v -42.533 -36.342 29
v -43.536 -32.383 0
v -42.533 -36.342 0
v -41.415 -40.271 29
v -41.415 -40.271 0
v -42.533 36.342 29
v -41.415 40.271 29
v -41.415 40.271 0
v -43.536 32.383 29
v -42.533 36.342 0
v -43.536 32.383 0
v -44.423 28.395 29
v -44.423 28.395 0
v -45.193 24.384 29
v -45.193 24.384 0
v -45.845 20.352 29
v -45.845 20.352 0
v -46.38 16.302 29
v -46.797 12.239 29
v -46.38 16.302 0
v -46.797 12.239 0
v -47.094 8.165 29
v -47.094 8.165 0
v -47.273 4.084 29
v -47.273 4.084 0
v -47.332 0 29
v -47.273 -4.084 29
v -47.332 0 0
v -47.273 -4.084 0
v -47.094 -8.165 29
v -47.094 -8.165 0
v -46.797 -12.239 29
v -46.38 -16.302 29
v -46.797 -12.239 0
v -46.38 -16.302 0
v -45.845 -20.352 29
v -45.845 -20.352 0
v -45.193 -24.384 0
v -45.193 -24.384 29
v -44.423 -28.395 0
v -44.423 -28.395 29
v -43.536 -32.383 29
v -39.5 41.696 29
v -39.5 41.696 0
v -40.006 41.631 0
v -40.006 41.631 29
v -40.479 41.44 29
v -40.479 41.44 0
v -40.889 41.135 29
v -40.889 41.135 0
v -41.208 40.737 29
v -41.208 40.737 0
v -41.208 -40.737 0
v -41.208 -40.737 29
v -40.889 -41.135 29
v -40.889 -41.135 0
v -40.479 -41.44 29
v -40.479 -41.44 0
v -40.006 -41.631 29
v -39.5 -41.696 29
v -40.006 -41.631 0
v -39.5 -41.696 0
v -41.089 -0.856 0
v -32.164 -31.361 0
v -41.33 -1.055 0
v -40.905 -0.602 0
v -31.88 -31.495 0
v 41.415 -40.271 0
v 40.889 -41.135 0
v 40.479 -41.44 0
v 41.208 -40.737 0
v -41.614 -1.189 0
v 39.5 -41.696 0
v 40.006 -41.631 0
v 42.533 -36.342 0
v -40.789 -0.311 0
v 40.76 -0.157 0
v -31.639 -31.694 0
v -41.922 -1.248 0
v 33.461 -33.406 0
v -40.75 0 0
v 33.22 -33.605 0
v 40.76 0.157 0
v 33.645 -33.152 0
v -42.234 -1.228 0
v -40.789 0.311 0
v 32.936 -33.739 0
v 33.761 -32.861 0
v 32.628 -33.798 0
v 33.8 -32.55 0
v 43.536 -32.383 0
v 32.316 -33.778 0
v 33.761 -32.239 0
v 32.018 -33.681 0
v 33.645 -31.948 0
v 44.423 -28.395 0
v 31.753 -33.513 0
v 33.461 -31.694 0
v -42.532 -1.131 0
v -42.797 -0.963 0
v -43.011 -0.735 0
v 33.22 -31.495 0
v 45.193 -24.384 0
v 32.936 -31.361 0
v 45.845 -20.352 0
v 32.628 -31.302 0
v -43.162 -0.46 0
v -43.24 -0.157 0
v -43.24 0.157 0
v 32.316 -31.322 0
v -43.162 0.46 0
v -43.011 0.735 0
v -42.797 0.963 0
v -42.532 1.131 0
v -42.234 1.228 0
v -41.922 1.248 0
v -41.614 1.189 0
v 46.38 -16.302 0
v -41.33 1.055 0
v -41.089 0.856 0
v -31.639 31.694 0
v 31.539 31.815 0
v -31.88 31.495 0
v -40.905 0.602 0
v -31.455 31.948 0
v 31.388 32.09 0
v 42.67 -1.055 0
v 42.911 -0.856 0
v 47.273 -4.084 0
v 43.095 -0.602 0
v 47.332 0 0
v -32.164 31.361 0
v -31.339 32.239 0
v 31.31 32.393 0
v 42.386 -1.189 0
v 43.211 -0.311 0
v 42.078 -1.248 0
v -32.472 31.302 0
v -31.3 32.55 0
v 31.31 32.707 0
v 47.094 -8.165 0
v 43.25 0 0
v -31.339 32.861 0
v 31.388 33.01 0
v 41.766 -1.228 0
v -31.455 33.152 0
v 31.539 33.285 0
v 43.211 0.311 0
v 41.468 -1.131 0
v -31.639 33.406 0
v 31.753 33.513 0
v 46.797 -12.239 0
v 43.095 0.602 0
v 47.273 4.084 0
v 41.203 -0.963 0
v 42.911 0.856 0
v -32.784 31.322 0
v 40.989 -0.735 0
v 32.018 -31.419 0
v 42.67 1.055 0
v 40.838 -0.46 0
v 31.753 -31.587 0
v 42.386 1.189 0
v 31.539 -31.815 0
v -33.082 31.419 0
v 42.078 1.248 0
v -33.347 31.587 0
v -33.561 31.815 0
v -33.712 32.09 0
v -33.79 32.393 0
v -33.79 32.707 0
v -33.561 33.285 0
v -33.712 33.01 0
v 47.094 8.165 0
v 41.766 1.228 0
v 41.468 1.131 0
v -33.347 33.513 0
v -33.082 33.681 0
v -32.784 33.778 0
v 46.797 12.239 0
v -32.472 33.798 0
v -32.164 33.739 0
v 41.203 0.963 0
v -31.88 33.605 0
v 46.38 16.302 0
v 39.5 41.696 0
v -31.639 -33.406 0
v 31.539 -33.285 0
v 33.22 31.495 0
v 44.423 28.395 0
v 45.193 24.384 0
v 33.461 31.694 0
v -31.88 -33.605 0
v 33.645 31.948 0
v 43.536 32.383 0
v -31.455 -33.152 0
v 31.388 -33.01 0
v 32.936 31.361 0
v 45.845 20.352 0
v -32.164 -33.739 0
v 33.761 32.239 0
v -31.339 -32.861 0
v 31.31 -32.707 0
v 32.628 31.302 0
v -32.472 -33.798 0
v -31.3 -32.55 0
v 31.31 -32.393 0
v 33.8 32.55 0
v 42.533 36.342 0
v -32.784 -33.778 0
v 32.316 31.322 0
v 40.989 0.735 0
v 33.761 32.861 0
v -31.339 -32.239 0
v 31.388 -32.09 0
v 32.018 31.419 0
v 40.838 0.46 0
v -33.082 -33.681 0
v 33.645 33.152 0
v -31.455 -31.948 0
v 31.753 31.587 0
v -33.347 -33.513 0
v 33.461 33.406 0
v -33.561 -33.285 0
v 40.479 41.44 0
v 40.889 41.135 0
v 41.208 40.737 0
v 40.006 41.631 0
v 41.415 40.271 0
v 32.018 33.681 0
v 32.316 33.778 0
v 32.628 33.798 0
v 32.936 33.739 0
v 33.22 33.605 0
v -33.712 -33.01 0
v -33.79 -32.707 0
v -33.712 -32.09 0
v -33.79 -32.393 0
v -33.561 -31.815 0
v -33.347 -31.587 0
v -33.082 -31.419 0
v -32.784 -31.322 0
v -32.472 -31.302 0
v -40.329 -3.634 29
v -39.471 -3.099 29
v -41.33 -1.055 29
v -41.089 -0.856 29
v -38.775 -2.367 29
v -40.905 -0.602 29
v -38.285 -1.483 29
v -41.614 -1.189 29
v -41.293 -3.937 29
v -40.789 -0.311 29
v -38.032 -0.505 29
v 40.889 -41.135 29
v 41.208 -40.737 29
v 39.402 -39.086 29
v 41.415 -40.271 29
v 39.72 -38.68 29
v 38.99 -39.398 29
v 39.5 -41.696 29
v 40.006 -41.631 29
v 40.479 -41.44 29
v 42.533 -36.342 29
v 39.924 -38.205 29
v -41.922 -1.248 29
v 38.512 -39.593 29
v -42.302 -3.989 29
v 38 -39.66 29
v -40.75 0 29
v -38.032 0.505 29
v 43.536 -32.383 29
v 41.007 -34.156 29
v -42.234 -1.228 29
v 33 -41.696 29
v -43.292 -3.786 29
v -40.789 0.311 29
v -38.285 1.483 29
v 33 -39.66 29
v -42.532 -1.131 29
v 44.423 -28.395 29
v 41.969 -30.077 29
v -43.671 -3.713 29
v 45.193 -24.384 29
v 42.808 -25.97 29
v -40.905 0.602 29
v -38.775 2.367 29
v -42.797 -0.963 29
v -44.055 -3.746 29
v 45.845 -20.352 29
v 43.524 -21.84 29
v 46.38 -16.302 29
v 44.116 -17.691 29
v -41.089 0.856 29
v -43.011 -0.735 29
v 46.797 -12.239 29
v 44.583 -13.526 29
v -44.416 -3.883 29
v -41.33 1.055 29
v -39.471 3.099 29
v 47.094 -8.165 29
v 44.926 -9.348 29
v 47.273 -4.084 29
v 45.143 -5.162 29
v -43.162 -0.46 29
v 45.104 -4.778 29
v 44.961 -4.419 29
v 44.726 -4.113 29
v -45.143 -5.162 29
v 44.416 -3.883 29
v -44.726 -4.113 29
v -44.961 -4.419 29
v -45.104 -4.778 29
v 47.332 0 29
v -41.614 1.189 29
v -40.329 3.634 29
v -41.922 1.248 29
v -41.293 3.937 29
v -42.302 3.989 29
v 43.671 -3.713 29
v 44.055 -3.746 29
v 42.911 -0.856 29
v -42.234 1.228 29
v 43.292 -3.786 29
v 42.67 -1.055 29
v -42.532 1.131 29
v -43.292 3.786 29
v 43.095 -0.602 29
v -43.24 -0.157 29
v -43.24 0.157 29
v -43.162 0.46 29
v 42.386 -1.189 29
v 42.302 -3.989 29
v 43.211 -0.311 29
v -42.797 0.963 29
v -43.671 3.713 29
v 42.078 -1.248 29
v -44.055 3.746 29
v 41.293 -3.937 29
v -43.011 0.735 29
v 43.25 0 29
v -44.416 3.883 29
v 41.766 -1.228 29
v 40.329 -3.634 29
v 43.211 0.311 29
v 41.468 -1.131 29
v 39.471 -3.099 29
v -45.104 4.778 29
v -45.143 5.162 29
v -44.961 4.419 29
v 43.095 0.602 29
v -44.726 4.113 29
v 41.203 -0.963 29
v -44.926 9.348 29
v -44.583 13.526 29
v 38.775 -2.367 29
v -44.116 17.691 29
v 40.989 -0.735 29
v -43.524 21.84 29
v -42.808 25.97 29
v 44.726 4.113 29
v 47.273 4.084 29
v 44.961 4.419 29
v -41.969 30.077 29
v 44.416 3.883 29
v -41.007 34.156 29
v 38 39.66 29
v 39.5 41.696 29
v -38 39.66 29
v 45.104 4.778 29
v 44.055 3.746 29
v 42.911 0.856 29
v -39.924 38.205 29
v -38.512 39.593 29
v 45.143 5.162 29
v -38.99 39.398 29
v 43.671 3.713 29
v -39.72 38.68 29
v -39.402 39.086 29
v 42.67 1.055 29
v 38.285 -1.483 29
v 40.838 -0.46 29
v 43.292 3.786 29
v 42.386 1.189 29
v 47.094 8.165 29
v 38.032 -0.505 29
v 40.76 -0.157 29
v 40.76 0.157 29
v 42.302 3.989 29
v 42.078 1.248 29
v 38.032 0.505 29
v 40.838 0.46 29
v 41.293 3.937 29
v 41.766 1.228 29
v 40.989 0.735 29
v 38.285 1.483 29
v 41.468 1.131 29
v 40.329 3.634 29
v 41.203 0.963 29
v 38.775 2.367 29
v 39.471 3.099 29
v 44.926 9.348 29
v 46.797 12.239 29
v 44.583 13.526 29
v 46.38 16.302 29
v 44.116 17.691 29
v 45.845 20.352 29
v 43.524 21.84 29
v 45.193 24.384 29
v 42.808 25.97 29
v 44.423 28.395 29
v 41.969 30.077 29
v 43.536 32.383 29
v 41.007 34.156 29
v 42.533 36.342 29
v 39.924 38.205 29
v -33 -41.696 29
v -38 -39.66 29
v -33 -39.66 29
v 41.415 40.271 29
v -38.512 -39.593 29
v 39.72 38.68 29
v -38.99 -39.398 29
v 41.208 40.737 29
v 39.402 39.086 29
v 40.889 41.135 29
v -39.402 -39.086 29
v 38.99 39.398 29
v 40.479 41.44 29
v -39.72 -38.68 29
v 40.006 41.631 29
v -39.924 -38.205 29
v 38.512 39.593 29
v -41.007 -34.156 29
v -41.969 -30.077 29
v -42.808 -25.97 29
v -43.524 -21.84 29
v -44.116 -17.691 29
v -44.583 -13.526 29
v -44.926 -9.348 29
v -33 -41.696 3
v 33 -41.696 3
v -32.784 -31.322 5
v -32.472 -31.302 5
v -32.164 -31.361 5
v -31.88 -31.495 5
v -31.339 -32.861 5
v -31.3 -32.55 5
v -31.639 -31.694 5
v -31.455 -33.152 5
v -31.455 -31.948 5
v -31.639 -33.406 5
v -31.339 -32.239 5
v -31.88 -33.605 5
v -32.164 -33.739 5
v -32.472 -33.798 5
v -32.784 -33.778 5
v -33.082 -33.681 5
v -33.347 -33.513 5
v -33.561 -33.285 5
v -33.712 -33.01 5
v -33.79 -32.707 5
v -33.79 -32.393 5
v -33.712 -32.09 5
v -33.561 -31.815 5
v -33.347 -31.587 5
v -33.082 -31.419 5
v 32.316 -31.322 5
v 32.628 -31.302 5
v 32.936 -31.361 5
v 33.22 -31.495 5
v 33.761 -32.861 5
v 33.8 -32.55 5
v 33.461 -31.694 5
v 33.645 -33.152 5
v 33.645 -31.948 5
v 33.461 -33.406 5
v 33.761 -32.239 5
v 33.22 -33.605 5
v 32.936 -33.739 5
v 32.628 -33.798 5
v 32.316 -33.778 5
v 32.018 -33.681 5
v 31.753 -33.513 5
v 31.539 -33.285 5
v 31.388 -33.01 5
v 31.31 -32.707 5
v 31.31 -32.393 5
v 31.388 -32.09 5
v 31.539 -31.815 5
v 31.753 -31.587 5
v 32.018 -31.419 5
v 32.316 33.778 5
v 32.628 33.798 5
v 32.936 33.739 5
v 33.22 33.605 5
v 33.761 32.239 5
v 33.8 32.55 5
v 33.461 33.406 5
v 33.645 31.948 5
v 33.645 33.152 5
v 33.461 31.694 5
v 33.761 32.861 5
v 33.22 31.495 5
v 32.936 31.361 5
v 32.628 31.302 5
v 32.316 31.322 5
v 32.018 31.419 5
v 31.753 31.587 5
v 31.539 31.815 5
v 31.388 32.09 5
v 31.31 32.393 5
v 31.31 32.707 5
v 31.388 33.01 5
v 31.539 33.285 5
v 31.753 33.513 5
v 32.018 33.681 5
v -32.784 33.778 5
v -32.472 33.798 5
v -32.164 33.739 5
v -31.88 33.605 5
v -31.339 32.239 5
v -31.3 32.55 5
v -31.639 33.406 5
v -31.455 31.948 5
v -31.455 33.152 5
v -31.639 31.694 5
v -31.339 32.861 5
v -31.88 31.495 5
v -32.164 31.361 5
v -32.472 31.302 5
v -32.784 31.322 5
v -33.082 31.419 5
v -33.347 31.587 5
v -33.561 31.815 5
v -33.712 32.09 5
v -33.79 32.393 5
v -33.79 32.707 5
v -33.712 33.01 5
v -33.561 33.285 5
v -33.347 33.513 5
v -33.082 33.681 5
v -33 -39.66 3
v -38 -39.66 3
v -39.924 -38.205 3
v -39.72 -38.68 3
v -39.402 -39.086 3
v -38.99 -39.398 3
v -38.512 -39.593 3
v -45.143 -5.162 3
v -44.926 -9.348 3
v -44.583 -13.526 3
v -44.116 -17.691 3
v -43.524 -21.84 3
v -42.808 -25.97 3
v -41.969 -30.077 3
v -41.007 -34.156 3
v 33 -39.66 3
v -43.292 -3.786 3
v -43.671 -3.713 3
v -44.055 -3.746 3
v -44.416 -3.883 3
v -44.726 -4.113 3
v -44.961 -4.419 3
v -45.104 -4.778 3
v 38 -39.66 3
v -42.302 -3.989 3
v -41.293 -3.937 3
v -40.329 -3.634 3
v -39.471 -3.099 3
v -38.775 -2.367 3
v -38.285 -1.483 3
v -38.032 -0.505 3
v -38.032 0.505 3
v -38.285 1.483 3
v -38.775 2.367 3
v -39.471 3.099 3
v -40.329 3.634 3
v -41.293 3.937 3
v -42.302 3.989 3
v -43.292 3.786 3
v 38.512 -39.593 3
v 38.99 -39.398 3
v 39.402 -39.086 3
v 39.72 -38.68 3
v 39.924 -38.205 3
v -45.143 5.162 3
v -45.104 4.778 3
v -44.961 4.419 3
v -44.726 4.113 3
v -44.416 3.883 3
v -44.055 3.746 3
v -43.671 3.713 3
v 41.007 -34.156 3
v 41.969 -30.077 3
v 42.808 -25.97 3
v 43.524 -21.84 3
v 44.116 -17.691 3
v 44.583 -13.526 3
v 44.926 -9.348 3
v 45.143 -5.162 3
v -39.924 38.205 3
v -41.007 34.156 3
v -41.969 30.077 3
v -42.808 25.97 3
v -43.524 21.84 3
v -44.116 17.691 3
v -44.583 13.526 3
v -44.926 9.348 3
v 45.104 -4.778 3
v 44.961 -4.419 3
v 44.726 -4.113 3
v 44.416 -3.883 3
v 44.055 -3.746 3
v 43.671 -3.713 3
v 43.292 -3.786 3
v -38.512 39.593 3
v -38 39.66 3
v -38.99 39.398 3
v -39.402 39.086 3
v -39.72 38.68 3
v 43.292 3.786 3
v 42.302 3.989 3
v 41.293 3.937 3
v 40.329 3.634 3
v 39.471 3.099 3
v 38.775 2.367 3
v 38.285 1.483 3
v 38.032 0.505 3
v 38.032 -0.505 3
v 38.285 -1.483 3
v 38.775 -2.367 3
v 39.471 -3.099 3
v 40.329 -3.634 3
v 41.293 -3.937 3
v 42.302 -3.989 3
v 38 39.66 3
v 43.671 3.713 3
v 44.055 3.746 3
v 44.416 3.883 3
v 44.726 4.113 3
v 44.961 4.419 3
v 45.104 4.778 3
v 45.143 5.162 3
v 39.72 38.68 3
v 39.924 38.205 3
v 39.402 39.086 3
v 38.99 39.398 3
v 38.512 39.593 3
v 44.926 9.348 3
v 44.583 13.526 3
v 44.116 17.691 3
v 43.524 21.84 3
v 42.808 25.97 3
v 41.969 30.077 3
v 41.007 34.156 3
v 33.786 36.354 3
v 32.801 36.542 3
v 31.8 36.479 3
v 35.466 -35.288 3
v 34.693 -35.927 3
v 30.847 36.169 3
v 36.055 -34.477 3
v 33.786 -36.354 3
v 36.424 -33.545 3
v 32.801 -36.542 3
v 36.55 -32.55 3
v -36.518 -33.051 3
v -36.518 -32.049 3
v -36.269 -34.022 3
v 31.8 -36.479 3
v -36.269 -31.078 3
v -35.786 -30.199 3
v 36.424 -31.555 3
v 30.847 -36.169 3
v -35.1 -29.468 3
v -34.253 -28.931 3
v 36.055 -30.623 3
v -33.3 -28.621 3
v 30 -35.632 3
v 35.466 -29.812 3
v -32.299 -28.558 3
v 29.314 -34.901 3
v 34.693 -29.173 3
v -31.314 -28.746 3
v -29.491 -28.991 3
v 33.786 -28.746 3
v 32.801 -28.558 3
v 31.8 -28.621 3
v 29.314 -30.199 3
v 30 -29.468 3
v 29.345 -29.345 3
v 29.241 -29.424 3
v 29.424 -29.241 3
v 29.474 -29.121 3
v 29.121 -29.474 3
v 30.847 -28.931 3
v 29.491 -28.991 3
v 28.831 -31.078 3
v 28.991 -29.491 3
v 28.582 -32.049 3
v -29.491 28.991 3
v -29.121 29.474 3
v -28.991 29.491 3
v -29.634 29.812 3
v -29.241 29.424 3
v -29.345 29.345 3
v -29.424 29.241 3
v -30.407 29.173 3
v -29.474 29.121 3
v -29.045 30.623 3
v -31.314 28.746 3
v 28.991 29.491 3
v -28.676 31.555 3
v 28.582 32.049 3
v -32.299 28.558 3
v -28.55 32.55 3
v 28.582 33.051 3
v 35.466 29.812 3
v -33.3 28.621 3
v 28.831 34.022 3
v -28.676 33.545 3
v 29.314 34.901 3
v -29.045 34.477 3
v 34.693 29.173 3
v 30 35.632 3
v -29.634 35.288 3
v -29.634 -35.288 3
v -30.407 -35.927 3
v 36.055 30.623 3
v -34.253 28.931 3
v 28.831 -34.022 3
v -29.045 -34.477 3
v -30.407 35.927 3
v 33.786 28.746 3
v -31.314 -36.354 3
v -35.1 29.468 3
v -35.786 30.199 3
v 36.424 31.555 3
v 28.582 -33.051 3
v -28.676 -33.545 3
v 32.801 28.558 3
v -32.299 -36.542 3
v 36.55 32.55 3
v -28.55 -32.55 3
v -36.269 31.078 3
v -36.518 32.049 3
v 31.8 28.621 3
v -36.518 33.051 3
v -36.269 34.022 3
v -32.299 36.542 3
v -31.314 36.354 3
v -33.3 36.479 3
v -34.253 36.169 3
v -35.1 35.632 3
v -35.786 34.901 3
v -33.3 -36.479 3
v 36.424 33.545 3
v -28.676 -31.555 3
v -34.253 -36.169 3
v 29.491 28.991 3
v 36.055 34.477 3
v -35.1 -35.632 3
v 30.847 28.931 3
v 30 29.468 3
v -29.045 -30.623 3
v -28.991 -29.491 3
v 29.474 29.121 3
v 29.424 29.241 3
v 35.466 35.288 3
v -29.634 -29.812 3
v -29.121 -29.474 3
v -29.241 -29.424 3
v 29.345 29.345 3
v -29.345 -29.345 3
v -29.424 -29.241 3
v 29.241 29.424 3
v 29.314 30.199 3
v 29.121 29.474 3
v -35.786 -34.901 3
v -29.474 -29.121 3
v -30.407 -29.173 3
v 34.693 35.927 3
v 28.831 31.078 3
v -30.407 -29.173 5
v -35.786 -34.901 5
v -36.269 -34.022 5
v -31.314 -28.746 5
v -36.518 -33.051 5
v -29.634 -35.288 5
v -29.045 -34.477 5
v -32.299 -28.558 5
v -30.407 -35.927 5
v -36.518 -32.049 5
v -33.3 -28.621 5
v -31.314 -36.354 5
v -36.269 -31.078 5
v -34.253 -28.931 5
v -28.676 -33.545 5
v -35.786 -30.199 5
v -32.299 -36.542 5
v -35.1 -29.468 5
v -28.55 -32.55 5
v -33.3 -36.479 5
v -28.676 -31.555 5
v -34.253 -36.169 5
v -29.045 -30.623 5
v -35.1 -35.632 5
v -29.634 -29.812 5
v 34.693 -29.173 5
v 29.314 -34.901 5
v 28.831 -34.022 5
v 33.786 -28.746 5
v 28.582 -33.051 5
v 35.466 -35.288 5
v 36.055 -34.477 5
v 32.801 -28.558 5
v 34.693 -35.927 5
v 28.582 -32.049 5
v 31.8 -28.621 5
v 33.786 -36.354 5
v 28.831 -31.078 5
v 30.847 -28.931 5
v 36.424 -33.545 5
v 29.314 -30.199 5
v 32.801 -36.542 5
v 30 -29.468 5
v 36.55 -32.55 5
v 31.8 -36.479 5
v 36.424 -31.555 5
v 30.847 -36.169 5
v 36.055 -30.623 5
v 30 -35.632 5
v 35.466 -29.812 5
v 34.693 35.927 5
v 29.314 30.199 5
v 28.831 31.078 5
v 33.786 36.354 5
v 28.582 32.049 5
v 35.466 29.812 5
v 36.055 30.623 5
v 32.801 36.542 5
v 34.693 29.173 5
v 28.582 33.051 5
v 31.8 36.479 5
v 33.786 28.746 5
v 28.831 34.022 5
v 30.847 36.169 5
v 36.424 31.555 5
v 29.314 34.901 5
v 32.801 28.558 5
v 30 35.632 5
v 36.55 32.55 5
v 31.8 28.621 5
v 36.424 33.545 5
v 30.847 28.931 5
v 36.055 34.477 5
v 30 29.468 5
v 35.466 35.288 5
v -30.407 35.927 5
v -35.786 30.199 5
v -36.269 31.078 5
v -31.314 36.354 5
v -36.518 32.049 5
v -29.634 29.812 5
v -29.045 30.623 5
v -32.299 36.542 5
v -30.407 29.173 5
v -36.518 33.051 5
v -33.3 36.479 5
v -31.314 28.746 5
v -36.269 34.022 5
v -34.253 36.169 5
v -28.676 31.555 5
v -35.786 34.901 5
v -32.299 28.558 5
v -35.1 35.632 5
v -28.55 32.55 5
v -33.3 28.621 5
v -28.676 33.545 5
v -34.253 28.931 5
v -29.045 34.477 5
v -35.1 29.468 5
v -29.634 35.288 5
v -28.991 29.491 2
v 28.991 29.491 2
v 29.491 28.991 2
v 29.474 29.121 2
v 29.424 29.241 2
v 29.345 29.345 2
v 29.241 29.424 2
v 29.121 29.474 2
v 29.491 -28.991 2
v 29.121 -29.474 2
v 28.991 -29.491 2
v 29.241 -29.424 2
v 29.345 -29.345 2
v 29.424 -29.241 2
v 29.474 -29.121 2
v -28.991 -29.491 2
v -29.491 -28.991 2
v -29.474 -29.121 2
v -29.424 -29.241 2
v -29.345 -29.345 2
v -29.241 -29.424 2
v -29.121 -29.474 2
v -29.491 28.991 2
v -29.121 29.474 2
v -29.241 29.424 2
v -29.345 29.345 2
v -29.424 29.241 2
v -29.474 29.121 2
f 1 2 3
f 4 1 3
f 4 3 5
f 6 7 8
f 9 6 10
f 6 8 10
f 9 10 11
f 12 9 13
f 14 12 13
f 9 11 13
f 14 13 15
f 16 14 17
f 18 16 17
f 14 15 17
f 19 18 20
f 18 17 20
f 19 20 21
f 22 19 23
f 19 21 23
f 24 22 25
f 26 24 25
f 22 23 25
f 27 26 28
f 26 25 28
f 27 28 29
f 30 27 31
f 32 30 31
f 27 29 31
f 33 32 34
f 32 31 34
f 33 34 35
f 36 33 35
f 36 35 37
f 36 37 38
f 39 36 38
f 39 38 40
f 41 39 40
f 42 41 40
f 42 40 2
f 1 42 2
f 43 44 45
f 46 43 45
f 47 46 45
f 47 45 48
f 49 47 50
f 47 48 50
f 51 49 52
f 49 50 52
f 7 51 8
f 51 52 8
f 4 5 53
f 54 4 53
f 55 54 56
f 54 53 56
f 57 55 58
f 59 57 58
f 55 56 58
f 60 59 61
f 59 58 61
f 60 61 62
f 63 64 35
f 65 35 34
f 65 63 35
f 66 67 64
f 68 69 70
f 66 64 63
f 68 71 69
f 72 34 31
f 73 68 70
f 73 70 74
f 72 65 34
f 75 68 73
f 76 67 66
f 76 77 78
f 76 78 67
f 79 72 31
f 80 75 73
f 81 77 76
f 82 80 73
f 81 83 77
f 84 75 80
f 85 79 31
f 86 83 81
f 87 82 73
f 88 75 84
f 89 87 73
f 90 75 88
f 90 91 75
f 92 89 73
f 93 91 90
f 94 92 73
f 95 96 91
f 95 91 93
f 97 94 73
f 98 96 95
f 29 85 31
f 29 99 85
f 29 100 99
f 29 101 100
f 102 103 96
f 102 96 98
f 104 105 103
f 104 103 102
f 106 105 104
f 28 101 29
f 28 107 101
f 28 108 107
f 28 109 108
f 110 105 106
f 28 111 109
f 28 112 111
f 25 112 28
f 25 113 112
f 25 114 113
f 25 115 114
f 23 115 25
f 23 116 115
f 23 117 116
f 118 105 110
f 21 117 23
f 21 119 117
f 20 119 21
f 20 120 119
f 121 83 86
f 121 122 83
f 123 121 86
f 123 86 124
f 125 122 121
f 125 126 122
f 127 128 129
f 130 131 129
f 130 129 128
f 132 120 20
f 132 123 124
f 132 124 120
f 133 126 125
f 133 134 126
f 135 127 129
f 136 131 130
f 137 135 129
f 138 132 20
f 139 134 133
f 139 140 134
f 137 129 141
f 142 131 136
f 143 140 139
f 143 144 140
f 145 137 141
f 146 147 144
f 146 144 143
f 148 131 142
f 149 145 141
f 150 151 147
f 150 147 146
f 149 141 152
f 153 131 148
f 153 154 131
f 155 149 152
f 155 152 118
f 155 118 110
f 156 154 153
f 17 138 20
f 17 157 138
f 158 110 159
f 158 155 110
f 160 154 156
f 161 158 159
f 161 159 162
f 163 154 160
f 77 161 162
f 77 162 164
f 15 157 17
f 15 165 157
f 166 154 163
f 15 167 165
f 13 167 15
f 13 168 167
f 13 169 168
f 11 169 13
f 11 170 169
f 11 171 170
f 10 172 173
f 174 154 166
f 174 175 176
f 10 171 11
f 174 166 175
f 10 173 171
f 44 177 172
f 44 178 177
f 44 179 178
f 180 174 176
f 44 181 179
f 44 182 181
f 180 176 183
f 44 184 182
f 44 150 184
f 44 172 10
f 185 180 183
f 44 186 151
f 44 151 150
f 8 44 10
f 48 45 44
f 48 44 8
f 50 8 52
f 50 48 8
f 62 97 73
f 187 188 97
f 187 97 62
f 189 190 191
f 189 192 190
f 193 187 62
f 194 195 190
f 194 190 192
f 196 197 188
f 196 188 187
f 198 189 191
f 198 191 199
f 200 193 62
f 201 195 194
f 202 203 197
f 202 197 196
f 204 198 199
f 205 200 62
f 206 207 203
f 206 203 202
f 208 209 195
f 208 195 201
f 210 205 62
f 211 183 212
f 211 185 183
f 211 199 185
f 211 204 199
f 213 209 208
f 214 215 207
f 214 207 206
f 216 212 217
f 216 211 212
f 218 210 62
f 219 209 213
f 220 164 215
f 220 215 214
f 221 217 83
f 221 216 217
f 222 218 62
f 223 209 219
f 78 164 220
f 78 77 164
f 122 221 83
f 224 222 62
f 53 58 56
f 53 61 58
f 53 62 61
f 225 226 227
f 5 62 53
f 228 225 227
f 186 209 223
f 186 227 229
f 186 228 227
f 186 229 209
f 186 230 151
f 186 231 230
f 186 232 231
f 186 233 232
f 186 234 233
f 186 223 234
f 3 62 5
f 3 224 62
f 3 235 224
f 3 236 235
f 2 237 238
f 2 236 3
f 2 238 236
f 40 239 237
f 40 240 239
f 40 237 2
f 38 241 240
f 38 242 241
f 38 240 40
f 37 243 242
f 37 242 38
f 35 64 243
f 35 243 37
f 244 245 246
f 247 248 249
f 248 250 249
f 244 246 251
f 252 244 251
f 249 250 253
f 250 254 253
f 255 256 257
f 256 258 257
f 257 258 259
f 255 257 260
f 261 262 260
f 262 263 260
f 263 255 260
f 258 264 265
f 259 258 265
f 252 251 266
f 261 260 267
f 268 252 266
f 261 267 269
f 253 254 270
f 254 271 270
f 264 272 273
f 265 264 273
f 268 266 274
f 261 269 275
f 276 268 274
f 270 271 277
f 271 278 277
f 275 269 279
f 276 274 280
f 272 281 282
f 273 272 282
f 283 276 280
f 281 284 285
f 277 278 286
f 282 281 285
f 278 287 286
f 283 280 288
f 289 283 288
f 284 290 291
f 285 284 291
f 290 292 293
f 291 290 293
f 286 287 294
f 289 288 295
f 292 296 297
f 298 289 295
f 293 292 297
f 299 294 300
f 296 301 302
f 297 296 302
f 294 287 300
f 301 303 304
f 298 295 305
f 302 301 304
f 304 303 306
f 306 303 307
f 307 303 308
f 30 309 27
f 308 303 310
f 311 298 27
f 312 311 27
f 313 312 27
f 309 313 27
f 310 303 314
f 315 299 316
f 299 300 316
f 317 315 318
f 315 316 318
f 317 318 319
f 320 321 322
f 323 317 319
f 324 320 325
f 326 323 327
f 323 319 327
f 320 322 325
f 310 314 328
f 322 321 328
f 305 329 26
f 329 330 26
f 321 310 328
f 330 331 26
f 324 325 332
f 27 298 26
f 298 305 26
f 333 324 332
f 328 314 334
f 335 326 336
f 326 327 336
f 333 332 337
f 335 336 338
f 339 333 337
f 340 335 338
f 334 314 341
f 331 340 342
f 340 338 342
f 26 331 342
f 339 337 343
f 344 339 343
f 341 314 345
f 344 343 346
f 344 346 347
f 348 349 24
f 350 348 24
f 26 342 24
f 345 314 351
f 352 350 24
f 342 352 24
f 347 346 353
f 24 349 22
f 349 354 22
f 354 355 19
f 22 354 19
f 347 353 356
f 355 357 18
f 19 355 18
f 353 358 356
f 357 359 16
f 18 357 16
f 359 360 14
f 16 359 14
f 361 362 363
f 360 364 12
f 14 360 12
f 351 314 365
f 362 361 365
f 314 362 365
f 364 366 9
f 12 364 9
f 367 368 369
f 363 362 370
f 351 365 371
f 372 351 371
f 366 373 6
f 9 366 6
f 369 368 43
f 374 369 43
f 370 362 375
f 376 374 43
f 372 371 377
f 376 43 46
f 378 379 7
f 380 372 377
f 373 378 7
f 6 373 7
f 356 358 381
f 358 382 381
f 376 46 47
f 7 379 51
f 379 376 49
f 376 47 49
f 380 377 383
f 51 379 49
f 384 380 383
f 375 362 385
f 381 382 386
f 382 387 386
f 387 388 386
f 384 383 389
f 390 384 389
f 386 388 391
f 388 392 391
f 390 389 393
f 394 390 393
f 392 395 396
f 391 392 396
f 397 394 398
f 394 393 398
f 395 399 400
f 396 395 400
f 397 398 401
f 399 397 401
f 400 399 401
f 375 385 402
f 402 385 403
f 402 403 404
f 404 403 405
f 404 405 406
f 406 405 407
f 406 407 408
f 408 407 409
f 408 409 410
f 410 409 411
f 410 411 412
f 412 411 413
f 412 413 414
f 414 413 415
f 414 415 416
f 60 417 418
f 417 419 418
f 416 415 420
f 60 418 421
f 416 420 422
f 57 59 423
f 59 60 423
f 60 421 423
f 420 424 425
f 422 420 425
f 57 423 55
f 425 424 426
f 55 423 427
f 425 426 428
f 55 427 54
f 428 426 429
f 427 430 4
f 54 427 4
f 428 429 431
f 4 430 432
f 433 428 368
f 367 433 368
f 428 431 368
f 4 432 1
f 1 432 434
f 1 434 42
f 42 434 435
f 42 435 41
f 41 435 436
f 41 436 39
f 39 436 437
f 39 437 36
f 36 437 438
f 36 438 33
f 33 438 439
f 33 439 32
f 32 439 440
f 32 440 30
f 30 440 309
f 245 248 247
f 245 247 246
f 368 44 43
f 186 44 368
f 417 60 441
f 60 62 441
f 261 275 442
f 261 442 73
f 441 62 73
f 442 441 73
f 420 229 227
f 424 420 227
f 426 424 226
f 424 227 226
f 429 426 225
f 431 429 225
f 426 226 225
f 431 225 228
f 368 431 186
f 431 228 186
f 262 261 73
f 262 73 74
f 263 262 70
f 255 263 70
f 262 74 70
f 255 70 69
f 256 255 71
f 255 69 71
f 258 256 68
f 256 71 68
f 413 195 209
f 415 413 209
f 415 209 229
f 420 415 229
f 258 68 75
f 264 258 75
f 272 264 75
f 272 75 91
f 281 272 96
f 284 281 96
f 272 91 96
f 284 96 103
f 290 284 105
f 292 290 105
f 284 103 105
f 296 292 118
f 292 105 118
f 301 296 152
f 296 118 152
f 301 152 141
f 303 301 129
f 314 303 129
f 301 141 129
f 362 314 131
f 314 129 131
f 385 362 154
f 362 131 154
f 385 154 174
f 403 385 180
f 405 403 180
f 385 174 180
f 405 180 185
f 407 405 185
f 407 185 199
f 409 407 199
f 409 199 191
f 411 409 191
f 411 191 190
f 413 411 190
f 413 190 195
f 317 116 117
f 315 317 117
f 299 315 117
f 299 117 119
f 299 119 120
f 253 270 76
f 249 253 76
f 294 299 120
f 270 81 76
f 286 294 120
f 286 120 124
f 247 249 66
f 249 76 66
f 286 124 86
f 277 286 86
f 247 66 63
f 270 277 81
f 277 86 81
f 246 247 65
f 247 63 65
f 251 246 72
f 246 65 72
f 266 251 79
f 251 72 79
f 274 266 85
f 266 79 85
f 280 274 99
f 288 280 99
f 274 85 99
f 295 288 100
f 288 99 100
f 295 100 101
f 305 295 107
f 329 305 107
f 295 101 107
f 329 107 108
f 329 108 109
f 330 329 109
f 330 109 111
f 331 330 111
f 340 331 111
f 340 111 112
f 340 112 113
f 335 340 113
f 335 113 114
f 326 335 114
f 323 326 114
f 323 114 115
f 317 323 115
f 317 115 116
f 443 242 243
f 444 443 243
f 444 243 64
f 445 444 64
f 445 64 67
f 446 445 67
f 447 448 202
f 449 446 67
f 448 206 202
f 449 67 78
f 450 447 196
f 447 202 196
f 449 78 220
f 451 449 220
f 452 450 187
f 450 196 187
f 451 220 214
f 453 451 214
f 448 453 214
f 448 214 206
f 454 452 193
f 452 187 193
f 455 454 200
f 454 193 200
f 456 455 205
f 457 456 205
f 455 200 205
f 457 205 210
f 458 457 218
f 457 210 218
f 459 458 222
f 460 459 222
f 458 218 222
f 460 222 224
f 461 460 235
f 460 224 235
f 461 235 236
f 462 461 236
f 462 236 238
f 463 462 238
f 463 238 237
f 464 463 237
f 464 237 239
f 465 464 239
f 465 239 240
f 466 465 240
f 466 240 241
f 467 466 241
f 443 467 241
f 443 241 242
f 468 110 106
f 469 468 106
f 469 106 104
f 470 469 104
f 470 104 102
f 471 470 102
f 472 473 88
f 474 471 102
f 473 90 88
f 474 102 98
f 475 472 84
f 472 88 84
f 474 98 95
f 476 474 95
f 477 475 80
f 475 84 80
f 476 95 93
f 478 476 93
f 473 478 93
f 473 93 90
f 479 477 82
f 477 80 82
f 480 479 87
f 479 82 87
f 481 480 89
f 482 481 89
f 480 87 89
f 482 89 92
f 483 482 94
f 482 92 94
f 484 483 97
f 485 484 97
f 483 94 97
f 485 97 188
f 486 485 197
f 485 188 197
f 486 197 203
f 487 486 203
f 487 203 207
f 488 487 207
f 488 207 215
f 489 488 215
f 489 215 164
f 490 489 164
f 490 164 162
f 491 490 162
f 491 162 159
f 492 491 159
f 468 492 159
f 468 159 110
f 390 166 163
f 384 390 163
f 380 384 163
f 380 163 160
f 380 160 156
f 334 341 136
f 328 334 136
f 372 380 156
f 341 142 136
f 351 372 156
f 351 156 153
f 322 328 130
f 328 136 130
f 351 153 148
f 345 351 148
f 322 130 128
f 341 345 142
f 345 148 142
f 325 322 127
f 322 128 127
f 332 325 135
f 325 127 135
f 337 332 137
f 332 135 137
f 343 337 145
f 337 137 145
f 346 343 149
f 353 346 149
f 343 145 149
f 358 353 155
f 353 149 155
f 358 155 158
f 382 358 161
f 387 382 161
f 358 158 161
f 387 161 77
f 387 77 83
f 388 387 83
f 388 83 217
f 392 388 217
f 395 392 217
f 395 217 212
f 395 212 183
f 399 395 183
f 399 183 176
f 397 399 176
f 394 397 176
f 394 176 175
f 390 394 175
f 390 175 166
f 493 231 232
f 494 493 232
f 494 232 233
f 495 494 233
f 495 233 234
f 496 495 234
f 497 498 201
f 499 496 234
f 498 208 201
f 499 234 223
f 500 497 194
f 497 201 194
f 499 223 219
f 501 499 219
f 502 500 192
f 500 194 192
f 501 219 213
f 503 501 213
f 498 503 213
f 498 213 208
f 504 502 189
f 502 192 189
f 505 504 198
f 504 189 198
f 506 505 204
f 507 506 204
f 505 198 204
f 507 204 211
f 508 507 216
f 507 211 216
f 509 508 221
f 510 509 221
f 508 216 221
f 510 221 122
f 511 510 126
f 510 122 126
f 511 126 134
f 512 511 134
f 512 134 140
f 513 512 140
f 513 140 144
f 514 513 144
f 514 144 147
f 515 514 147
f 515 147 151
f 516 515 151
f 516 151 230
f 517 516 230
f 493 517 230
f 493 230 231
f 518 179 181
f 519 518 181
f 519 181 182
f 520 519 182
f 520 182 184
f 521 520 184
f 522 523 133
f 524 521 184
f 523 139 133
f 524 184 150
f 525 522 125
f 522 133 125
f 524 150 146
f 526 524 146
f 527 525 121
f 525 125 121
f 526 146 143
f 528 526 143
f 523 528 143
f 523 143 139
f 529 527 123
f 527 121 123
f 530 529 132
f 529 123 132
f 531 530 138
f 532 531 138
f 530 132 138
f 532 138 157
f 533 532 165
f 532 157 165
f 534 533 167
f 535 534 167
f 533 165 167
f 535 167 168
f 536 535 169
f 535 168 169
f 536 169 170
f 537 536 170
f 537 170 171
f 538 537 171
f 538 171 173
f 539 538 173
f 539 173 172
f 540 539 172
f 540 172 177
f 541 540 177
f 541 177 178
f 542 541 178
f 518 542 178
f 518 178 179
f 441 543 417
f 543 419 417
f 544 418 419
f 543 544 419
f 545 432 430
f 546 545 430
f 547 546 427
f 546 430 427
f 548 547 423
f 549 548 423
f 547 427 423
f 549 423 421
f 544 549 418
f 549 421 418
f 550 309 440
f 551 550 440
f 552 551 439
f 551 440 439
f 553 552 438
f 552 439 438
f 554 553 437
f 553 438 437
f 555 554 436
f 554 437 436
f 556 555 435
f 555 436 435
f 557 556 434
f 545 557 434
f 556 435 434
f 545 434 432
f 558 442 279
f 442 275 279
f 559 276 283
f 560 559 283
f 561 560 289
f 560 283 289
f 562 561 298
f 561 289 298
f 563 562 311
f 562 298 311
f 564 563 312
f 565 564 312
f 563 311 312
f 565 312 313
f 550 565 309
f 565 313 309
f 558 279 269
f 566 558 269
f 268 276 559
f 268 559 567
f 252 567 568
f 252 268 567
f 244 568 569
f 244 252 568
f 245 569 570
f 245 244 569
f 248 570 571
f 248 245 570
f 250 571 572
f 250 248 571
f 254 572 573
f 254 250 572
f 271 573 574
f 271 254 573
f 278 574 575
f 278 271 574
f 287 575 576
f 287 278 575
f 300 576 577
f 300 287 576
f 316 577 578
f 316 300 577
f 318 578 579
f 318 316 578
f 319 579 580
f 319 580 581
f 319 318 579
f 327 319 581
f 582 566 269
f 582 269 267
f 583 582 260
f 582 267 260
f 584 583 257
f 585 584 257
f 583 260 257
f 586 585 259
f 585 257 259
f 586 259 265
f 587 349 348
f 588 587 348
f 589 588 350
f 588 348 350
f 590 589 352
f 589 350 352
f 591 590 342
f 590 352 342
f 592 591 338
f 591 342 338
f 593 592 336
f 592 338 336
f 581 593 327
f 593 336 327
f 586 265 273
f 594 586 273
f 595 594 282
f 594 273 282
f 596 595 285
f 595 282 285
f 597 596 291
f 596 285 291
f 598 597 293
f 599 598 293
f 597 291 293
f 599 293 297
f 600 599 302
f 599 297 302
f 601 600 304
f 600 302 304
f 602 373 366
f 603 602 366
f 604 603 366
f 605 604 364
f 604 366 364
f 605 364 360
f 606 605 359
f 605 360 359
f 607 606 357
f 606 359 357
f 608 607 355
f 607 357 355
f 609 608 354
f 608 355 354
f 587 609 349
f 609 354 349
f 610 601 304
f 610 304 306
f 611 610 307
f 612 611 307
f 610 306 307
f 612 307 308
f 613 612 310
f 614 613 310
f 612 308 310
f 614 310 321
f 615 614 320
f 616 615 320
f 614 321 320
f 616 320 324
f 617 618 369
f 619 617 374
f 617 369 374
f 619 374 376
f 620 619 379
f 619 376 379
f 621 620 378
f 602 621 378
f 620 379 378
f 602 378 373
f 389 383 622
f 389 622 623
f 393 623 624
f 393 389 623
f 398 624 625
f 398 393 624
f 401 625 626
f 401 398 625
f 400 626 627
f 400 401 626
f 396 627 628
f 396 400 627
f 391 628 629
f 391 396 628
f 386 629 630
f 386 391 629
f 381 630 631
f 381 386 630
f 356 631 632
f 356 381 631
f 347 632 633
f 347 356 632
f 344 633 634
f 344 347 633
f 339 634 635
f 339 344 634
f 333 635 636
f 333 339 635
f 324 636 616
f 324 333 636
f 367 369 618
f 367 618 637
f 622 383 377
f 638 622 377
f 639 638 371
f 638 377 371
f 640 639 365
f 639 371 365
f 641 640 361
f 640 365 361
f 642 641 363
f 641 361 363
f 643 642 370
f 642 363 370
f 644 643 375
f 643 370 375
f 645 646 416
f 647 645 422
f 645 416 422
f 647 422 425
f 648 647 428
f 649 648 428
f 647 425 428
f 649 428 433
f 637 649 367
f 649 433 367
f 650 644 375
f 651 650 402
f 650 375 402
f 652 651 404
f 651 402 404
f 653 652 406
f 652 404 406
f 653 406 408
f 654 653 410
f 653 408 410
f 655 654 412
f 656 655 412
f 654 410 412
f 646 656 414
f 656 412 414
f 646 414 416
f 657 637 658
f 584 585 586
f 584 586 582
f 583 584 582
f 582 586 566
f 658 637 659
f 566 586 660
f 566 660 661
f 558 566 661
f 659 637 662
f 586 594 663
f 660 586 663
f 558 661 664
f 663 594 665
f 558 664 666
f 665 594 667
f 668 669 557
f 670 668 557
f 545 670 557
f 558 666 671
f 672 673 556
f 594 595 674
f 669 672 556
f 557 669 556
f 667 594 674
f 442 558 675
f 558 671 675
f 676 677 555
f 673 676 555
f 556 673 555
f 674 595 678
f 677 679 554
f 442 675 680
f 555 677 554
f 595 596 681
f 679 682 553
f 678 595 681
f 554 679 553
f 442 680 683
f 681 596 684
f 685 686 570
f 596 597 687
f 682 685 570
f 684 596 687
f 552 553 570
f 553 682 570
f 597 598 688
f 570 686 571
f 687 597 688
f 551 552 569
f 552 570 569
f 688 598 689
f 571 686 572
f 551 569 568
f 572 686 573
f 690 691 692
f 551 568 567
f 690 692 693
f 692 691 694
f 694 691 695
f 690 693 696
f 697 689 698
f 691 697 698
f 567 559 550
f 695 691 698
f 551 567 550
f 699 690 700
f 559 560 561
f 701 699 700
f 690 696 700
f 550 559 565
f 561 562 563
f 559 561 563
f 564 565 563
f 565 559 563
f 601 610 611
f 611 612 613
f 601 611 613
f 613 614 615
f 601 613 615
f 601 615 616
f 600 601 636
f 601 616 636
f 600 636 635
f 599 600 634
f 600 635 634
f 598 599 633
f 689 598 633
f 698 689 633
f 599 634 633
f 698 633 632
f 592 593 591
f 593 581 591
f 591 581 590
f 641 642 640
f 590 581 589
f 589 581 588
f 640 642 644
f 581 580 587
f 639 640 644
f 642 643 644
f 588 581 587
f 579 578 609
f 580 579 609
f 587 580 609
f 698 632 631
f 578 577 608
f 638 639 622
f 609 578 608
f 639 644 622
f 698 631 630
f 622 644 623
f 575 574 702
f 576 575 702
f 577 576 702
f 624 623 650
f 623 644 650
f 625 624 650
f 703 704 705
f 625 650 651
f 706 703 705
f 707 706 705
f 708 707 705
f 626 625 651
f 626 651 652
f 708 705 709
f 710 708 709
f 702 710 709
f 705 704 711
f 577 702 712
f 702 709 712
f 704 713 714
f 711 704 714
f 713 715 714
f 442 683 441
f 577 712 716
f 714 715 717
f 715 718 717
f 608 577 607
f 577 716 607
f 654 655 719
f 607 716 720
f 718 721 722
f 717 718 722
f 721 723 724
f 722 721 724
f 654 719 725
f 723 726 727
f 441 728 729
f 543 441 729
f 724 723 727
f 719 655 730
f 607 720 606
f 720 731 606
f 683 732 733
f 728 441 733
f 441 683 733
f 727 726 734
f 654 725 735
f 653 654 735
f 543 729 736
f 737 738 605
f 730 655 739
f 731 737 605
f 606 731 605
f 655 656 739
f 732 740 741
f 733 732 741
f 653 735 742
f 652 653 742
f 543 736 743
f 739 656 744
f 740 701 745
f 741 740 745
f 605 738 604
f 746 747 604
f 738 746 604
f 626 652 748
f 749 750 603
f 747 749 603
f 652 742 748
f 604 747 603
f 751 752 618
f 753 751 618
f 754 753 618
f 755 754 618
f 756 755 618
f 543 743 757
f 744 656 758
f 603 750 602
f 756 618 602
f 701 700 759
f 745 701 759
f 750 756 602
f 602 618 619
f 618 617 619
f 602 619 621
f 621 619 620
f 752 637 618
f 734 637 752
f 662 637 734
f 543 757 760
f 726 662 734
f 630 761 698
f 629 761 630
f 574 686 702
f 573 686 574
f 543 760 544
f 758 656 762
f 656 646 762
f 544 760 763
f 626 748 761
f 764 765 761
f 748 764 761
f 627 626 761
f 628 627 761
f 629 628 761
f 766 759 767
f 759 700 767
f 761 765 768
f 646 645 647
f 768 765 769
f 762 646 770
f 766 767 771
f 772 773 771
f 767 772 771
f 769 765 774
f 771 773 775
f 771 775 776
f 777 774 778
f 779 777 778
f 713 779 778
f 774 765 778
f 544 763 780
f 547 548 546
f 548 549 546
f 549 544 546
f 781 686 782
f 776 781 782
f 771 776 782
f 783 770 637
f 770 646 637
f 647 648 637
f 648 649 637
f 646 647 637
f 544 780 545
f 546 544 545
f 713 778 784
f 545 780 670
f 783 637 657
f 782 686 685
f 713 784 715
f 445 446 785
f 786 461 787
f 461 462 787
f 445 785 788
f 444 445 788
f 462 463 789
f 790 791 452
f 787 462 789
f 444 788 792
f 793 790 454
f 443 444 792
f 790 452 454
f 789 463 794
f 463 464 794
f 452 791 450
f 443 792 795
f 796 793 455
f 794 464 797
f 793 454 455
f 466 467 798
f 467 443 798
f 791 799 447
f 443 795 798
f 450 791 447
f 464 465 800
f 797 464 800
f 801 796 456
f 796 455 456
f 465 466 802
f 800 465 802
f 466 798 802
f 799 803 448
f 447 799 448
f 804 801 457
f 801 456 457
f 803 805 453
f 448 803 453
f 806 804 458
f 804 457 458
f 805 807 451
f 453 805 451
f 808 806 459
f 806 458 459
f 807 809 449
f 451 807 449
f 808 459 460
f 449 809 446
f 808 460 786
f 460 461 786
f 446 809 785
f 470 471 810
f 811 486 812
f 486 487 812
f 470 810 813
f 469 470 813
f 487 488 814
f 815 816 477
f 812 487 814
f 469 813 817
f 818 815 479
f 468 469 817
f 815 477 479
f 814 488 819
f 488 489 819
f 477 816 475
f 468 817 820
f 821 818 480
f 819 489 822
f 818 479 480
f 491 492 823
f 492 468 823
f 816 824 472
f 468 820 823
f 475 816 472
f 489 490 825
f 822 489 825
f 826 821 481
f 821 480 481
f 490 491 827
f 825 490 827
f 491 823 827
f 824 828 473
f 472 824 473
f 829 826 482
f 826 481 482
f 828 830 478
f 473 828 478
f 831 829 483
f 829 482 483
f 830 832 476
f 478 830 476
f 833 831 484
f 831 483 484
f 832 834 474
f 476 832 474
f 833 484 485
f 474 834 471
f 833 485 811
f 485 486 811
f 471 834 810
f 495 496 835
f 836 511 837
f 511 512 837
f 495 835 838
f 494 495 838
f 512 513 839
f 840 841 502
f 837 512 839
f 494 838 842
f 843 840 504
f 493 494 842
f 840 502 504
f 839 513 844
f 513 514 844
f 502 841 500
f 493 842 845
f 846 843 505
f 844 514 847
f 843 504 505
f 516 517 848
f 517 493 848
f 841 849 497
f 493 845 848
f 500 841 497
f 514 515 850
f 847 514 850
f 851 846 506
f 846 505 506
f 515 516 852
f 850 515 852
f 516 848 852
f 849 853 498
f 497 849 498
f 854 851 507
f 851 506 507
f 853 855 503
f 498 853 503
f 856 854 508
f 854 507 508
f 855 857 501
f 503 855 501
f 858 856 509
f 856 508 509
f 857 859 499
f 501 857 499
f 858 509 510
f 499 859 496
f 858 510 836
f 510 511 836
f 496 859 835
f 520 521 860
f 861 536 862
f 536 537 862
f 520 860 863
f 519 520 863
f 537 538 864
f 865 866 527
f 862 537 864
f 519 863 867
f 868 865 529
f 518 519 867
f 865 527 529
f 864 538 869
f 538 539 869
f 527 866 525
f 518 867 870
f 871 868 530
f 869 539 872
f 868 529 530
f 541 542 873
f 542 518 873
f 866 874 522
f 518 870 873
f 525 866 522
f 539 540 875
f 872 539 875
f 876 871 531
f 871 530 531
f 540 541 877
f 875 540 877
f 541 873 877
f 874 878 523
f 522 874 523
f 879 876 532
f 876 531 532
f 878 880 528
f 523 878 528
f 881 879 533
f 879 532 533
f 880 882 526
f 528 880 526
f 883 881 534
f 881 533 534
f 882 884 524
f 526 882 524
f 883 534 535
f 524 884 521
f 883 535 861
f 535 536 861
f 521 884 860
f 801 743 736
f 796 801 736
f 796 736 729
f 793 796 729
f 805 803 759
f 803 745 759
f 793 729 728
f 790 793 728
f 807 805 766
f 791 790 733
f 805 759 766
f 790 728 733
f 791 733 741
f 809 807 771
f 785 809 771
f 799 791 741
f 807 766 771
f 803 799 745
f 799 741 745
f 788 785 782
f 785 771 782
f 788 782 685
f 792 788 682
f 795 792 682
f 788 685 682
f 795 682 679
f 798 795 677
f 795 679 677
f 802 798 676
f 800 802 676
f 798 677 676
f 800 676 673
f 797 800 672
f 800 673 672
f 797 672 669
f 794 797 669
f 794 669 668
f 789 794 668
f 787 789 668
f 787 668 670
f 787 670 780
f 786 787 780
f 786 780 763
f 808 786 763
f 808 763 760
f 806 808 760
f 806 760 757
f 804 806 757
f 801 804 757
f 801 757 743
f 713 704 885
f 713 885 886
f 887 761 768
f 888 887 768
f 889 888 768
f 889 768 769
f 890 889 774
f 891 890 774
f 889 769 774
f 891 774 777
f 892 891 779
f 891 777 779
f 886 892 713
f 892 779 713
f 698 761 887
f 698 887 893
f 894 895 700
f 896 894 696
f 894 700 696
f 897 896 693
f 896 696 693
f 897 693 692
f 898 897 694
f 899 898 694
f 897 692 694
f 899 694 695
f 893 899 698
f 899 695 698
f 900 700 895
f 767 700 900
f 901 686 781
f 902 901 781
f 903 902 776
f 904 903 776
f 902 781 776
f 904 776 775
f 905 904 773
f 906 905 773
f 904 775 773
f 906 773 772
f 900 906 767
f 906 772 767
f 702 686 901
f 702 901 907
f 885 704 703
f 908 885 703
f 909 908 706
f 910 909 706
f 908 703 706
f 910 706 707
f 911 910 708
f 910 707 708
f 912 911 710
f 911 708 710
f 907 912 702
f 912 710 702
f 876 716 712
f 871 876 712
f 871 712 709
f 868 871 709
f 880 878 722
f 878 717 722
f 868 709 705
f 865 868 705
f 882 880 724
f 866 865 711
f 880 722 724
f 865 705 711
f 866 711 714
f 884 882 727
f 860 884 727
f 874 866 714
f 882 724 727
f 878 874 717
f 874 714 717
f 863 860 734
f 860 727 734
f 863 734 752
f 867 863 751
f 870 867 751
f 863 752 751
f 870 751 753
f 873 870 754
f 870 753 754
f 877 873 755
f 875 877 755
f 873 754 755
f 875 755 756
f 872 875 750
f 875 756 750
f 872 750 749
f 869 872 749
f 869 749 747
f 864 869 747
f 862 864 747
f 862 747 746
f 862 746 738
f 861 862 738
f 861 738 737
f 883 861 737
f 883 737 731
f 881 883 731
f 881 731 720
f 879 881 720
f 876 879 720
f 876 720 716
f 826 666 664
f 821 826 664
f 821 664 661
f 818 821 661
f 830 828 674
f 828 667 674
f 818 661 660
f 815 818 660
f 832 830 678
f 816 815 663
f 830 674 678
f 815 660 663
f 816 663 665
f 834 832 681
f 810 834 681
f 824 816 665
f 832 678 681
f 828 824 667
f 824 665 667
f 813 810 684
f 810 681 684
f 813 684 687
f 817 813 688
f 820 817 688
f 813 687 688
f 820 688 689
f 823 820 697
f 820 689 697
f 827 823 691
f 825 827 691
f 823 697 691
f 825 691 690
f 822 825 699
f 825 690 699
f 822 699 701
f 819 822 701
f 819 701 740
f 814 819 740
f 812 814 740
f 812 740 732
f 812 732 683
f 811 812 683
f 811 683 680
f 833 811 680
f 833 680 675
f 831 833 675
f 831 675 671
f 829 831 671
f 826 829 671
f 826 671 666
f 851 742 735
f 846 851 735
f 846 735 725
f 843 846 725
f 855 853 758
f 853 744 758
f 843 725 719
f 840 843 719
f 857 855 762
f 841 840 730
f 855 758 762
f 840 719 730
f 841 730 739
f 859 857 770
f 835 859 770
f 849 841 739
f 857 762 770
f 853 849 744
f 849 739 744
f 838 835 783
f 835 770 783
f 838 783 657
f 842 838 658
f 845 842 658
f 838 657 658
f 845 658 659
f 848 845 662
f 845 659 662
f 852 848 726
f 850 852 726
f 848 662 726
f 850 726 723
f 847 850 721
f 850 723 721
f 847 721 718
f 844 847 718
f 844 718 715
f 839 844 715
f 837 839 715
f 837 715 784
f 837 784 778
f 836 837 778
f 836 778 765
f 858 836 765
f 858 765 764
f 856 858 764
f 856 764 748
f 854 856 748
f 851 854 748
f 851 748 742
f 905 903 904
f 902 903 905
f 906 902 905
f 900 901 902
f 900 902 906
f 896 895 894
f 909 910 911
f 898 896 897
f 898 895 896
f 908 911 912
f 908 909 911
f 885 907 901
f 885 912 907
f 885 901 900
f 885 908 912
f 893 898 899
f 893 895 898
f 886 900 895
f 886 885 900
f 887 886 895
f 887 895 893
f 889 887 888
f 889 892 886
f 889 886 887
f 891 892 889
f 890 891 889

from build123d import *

# Parameters (mm, degrees)
PAD_DEPTH       = 29
POCKET_DEPTH    = 26
SKETCH004_R     = 4
PAD001_DEPTH    = 2
SKETCH005_R     = 1.25
POCKET001_DEPTH = 5
SKETCH006_R     = 1.25
POCKET002_DEPTH = 29
POCKET003_DEPTH = 1


with BuildPart() as part:
    # Sketch002 → Pad (new body)
    with BuildSketch(Plane.XY):
        with BuildLine():
            ThreePointArc((-41.415471, 40.271018), (-47.332493, 0), (-41.415471, -40.271018))
            ThreePointArc((-41.415471, -40.271018), (-40.693608, -41.300492), (-39.5, -41.695718))
            Line((-39.5, -41.695718), (39.5, -41.695718))
            ThreePointArc((39.5, -41.695718), (40.693608, -41.300492), (41.415471, -40.271018))
            ThreePointArc((41.415471, -40.271018), (47.332493, 0), (41.415471, 40.271018))
            ThreePointArc((41.415471, 40.271018), (40.693608, 41.300492), (39.5, 41.695718))
            Line((-39.5, 41.695718), (39.5, 41.695718))
            ThreePointArc((-39.5, 41.695718), (-40.693608, 41.300492), (-41.415471, 40.271018))
        make_face()
    extrude(amount=PAD_DEPTH)

    # Sketch003 → Pocket (cut)
    with BuildSketch(Plane.XY.offset(29)):
        with BuildLine():
            ThreePointArc((-39.924087, -38.205452), (-39.205905, -39.255214), (-38, -39.65966))
            Line((-38, -39.65966), (-33, -39.65966))
            Line((-33, -39.65966), (-33, -42.65966))
            Line((-33, -42.65966), (33, -42.65966))
            Line((33, -42.65966), (33, -39.65966))
            Line((33, -39.65966), (38, -39.65966))
            ThreePointArc((38, -39.65966), (39.205905, -39.255214), (39.924087, -38.205452))
            ThreePointArc((39.924087, -38.205452), (43.523931, -21.840329), (45.142785, -5.162336))
            ThreePointArc((45.142785, -5.162336), (44.579177, -3.987307), (43.291657, -3.785713))
            ThreePointArc((43.291657, 3.785713), (38, 0), (43.291657, -3.785713))
            ThreePointArc((43.291657, 3.785713), (44.579177, 3.987307), (45.142785, 5.162336))
            ThreePointArc((45.142785, 5.162336), (43.523931, 21.840329), (39.924087, 38.205452))
            ThreePointArc((39.924087, 38.205452), (39.205905, 39.255214), (38, 39.65966))
            Line((-38, 39.65966), (38, 39.65966))
            ThreePointArc((-38, 39.65966), (-39.205905, 39.255214), (-39.924087, 38.205452))
            ThreePointArc((-39.924087, 38.205452), (-43.523931, 21.840329), (-45.142785, 5.162336))
            ThreePointArc((-45.142785, 5.162336), (-44.579177, 3.987307), (-43.291657, 3.785713))
            ThreePointArc((-43.291657, -3.785713), (-38, 0), (-43.291657, 3.785713))
            ThreePointArc((-43.291657, -3.785713), (-44.579177, -3.987307), (-45.142785, -5.162336))
            ThreePointArc((-45.142785, -5.162336), (-43.523931, -21.840329), (-39.924087, -38.205452))
        make_face()
    extrude(amount=-POCKET_DEPTH, mode=Mode.SUBTRACT)

    # Sketch004 → Pad001 (new body)
    with BuildSketch(Plane.XY.offset(3)):
        with Locations((-32.55, 32.55)):
            Circle(SKETCH004_R)
        with Locations((32.55, 32.55)):
            Circle(SKETCH004_R)
        with Locations((32.55, -32.55)):
            Circle(SKETCH004_R)
        with Locations((-32.55, -32.55)):
            Circle(SKETCH004_R)
    extrude(amount=PAD001_DEPTH)

    # Sketch005 → Pocket001 (cut)
    with BuildSketch(Plane(origin=(0, 0, 0), x_dir=(1, 0, 0), z_dir=(0, 0, -1))):
        with Locations((-32.55, 32.55)):
            Circle(SKETCH005_R)
        with Locations((32.55, 32.55)):
            Circle(SKETCH005_R)
        with Locations((32.55, -32.55)):
            Circle(SKETCH005_R)
        with Locations((-32.55, -32.55)):
            Circle(SKETCH005_R)
    extrude(amount=-POCKET001_DEPTH, mode=Mode.SUBTRACT)

    # Sketch006 → Pocket002 (cut)
    with BuildSketch(Plane(origin=(0, 0, 0), x_dir=(1, 0, 0), z_dir=(0, 0, -1))):
        with Locations((-42, 0)):
            Circle(SKETCH006_R)
        with Locations((42, 0)):
            Circle(SKETCH006_R)
    extrude(amount=-POCKET002_DEPTH, mode=Mode.SUBTRACT)

    # Sketch008 → Pocket003 (cut)
    with BuildSketch(Plane.XY.offset(3)):
        with BuildLine():
            Line((-28.991378, 29.491378), (28.991378, 29.491378))
            ThreePointArc((29.491378, 28.991378), (29.344931, 29.344931), (28.991378, 29.491378))
            Line((29.491378, 28.991378), (29.491378, -28.991378))
            ThreePointArc((28.991378, -29.491378), (29.344931, -29.344931), (29.491378, -28.991378))
            Line((28.991378, -29.491378), (-28.991378, -29.491378))
            ThreePointArc((-29.491378, -28.991378), (-29.344931, -29.344931), (-28.991378, -29.491378))
            Line((-29.491378, -28.991378), (-29.491378, 28.991378))
            ThreePointArc((-28.991378, 29.491378), (-29.344931, 29.344931), (-29.491378, 28.991378))
        make_face()
    extrude(amount=-POCKET003_DEPTH, mode=Mode.SUBTRACT)


solid = part.part
